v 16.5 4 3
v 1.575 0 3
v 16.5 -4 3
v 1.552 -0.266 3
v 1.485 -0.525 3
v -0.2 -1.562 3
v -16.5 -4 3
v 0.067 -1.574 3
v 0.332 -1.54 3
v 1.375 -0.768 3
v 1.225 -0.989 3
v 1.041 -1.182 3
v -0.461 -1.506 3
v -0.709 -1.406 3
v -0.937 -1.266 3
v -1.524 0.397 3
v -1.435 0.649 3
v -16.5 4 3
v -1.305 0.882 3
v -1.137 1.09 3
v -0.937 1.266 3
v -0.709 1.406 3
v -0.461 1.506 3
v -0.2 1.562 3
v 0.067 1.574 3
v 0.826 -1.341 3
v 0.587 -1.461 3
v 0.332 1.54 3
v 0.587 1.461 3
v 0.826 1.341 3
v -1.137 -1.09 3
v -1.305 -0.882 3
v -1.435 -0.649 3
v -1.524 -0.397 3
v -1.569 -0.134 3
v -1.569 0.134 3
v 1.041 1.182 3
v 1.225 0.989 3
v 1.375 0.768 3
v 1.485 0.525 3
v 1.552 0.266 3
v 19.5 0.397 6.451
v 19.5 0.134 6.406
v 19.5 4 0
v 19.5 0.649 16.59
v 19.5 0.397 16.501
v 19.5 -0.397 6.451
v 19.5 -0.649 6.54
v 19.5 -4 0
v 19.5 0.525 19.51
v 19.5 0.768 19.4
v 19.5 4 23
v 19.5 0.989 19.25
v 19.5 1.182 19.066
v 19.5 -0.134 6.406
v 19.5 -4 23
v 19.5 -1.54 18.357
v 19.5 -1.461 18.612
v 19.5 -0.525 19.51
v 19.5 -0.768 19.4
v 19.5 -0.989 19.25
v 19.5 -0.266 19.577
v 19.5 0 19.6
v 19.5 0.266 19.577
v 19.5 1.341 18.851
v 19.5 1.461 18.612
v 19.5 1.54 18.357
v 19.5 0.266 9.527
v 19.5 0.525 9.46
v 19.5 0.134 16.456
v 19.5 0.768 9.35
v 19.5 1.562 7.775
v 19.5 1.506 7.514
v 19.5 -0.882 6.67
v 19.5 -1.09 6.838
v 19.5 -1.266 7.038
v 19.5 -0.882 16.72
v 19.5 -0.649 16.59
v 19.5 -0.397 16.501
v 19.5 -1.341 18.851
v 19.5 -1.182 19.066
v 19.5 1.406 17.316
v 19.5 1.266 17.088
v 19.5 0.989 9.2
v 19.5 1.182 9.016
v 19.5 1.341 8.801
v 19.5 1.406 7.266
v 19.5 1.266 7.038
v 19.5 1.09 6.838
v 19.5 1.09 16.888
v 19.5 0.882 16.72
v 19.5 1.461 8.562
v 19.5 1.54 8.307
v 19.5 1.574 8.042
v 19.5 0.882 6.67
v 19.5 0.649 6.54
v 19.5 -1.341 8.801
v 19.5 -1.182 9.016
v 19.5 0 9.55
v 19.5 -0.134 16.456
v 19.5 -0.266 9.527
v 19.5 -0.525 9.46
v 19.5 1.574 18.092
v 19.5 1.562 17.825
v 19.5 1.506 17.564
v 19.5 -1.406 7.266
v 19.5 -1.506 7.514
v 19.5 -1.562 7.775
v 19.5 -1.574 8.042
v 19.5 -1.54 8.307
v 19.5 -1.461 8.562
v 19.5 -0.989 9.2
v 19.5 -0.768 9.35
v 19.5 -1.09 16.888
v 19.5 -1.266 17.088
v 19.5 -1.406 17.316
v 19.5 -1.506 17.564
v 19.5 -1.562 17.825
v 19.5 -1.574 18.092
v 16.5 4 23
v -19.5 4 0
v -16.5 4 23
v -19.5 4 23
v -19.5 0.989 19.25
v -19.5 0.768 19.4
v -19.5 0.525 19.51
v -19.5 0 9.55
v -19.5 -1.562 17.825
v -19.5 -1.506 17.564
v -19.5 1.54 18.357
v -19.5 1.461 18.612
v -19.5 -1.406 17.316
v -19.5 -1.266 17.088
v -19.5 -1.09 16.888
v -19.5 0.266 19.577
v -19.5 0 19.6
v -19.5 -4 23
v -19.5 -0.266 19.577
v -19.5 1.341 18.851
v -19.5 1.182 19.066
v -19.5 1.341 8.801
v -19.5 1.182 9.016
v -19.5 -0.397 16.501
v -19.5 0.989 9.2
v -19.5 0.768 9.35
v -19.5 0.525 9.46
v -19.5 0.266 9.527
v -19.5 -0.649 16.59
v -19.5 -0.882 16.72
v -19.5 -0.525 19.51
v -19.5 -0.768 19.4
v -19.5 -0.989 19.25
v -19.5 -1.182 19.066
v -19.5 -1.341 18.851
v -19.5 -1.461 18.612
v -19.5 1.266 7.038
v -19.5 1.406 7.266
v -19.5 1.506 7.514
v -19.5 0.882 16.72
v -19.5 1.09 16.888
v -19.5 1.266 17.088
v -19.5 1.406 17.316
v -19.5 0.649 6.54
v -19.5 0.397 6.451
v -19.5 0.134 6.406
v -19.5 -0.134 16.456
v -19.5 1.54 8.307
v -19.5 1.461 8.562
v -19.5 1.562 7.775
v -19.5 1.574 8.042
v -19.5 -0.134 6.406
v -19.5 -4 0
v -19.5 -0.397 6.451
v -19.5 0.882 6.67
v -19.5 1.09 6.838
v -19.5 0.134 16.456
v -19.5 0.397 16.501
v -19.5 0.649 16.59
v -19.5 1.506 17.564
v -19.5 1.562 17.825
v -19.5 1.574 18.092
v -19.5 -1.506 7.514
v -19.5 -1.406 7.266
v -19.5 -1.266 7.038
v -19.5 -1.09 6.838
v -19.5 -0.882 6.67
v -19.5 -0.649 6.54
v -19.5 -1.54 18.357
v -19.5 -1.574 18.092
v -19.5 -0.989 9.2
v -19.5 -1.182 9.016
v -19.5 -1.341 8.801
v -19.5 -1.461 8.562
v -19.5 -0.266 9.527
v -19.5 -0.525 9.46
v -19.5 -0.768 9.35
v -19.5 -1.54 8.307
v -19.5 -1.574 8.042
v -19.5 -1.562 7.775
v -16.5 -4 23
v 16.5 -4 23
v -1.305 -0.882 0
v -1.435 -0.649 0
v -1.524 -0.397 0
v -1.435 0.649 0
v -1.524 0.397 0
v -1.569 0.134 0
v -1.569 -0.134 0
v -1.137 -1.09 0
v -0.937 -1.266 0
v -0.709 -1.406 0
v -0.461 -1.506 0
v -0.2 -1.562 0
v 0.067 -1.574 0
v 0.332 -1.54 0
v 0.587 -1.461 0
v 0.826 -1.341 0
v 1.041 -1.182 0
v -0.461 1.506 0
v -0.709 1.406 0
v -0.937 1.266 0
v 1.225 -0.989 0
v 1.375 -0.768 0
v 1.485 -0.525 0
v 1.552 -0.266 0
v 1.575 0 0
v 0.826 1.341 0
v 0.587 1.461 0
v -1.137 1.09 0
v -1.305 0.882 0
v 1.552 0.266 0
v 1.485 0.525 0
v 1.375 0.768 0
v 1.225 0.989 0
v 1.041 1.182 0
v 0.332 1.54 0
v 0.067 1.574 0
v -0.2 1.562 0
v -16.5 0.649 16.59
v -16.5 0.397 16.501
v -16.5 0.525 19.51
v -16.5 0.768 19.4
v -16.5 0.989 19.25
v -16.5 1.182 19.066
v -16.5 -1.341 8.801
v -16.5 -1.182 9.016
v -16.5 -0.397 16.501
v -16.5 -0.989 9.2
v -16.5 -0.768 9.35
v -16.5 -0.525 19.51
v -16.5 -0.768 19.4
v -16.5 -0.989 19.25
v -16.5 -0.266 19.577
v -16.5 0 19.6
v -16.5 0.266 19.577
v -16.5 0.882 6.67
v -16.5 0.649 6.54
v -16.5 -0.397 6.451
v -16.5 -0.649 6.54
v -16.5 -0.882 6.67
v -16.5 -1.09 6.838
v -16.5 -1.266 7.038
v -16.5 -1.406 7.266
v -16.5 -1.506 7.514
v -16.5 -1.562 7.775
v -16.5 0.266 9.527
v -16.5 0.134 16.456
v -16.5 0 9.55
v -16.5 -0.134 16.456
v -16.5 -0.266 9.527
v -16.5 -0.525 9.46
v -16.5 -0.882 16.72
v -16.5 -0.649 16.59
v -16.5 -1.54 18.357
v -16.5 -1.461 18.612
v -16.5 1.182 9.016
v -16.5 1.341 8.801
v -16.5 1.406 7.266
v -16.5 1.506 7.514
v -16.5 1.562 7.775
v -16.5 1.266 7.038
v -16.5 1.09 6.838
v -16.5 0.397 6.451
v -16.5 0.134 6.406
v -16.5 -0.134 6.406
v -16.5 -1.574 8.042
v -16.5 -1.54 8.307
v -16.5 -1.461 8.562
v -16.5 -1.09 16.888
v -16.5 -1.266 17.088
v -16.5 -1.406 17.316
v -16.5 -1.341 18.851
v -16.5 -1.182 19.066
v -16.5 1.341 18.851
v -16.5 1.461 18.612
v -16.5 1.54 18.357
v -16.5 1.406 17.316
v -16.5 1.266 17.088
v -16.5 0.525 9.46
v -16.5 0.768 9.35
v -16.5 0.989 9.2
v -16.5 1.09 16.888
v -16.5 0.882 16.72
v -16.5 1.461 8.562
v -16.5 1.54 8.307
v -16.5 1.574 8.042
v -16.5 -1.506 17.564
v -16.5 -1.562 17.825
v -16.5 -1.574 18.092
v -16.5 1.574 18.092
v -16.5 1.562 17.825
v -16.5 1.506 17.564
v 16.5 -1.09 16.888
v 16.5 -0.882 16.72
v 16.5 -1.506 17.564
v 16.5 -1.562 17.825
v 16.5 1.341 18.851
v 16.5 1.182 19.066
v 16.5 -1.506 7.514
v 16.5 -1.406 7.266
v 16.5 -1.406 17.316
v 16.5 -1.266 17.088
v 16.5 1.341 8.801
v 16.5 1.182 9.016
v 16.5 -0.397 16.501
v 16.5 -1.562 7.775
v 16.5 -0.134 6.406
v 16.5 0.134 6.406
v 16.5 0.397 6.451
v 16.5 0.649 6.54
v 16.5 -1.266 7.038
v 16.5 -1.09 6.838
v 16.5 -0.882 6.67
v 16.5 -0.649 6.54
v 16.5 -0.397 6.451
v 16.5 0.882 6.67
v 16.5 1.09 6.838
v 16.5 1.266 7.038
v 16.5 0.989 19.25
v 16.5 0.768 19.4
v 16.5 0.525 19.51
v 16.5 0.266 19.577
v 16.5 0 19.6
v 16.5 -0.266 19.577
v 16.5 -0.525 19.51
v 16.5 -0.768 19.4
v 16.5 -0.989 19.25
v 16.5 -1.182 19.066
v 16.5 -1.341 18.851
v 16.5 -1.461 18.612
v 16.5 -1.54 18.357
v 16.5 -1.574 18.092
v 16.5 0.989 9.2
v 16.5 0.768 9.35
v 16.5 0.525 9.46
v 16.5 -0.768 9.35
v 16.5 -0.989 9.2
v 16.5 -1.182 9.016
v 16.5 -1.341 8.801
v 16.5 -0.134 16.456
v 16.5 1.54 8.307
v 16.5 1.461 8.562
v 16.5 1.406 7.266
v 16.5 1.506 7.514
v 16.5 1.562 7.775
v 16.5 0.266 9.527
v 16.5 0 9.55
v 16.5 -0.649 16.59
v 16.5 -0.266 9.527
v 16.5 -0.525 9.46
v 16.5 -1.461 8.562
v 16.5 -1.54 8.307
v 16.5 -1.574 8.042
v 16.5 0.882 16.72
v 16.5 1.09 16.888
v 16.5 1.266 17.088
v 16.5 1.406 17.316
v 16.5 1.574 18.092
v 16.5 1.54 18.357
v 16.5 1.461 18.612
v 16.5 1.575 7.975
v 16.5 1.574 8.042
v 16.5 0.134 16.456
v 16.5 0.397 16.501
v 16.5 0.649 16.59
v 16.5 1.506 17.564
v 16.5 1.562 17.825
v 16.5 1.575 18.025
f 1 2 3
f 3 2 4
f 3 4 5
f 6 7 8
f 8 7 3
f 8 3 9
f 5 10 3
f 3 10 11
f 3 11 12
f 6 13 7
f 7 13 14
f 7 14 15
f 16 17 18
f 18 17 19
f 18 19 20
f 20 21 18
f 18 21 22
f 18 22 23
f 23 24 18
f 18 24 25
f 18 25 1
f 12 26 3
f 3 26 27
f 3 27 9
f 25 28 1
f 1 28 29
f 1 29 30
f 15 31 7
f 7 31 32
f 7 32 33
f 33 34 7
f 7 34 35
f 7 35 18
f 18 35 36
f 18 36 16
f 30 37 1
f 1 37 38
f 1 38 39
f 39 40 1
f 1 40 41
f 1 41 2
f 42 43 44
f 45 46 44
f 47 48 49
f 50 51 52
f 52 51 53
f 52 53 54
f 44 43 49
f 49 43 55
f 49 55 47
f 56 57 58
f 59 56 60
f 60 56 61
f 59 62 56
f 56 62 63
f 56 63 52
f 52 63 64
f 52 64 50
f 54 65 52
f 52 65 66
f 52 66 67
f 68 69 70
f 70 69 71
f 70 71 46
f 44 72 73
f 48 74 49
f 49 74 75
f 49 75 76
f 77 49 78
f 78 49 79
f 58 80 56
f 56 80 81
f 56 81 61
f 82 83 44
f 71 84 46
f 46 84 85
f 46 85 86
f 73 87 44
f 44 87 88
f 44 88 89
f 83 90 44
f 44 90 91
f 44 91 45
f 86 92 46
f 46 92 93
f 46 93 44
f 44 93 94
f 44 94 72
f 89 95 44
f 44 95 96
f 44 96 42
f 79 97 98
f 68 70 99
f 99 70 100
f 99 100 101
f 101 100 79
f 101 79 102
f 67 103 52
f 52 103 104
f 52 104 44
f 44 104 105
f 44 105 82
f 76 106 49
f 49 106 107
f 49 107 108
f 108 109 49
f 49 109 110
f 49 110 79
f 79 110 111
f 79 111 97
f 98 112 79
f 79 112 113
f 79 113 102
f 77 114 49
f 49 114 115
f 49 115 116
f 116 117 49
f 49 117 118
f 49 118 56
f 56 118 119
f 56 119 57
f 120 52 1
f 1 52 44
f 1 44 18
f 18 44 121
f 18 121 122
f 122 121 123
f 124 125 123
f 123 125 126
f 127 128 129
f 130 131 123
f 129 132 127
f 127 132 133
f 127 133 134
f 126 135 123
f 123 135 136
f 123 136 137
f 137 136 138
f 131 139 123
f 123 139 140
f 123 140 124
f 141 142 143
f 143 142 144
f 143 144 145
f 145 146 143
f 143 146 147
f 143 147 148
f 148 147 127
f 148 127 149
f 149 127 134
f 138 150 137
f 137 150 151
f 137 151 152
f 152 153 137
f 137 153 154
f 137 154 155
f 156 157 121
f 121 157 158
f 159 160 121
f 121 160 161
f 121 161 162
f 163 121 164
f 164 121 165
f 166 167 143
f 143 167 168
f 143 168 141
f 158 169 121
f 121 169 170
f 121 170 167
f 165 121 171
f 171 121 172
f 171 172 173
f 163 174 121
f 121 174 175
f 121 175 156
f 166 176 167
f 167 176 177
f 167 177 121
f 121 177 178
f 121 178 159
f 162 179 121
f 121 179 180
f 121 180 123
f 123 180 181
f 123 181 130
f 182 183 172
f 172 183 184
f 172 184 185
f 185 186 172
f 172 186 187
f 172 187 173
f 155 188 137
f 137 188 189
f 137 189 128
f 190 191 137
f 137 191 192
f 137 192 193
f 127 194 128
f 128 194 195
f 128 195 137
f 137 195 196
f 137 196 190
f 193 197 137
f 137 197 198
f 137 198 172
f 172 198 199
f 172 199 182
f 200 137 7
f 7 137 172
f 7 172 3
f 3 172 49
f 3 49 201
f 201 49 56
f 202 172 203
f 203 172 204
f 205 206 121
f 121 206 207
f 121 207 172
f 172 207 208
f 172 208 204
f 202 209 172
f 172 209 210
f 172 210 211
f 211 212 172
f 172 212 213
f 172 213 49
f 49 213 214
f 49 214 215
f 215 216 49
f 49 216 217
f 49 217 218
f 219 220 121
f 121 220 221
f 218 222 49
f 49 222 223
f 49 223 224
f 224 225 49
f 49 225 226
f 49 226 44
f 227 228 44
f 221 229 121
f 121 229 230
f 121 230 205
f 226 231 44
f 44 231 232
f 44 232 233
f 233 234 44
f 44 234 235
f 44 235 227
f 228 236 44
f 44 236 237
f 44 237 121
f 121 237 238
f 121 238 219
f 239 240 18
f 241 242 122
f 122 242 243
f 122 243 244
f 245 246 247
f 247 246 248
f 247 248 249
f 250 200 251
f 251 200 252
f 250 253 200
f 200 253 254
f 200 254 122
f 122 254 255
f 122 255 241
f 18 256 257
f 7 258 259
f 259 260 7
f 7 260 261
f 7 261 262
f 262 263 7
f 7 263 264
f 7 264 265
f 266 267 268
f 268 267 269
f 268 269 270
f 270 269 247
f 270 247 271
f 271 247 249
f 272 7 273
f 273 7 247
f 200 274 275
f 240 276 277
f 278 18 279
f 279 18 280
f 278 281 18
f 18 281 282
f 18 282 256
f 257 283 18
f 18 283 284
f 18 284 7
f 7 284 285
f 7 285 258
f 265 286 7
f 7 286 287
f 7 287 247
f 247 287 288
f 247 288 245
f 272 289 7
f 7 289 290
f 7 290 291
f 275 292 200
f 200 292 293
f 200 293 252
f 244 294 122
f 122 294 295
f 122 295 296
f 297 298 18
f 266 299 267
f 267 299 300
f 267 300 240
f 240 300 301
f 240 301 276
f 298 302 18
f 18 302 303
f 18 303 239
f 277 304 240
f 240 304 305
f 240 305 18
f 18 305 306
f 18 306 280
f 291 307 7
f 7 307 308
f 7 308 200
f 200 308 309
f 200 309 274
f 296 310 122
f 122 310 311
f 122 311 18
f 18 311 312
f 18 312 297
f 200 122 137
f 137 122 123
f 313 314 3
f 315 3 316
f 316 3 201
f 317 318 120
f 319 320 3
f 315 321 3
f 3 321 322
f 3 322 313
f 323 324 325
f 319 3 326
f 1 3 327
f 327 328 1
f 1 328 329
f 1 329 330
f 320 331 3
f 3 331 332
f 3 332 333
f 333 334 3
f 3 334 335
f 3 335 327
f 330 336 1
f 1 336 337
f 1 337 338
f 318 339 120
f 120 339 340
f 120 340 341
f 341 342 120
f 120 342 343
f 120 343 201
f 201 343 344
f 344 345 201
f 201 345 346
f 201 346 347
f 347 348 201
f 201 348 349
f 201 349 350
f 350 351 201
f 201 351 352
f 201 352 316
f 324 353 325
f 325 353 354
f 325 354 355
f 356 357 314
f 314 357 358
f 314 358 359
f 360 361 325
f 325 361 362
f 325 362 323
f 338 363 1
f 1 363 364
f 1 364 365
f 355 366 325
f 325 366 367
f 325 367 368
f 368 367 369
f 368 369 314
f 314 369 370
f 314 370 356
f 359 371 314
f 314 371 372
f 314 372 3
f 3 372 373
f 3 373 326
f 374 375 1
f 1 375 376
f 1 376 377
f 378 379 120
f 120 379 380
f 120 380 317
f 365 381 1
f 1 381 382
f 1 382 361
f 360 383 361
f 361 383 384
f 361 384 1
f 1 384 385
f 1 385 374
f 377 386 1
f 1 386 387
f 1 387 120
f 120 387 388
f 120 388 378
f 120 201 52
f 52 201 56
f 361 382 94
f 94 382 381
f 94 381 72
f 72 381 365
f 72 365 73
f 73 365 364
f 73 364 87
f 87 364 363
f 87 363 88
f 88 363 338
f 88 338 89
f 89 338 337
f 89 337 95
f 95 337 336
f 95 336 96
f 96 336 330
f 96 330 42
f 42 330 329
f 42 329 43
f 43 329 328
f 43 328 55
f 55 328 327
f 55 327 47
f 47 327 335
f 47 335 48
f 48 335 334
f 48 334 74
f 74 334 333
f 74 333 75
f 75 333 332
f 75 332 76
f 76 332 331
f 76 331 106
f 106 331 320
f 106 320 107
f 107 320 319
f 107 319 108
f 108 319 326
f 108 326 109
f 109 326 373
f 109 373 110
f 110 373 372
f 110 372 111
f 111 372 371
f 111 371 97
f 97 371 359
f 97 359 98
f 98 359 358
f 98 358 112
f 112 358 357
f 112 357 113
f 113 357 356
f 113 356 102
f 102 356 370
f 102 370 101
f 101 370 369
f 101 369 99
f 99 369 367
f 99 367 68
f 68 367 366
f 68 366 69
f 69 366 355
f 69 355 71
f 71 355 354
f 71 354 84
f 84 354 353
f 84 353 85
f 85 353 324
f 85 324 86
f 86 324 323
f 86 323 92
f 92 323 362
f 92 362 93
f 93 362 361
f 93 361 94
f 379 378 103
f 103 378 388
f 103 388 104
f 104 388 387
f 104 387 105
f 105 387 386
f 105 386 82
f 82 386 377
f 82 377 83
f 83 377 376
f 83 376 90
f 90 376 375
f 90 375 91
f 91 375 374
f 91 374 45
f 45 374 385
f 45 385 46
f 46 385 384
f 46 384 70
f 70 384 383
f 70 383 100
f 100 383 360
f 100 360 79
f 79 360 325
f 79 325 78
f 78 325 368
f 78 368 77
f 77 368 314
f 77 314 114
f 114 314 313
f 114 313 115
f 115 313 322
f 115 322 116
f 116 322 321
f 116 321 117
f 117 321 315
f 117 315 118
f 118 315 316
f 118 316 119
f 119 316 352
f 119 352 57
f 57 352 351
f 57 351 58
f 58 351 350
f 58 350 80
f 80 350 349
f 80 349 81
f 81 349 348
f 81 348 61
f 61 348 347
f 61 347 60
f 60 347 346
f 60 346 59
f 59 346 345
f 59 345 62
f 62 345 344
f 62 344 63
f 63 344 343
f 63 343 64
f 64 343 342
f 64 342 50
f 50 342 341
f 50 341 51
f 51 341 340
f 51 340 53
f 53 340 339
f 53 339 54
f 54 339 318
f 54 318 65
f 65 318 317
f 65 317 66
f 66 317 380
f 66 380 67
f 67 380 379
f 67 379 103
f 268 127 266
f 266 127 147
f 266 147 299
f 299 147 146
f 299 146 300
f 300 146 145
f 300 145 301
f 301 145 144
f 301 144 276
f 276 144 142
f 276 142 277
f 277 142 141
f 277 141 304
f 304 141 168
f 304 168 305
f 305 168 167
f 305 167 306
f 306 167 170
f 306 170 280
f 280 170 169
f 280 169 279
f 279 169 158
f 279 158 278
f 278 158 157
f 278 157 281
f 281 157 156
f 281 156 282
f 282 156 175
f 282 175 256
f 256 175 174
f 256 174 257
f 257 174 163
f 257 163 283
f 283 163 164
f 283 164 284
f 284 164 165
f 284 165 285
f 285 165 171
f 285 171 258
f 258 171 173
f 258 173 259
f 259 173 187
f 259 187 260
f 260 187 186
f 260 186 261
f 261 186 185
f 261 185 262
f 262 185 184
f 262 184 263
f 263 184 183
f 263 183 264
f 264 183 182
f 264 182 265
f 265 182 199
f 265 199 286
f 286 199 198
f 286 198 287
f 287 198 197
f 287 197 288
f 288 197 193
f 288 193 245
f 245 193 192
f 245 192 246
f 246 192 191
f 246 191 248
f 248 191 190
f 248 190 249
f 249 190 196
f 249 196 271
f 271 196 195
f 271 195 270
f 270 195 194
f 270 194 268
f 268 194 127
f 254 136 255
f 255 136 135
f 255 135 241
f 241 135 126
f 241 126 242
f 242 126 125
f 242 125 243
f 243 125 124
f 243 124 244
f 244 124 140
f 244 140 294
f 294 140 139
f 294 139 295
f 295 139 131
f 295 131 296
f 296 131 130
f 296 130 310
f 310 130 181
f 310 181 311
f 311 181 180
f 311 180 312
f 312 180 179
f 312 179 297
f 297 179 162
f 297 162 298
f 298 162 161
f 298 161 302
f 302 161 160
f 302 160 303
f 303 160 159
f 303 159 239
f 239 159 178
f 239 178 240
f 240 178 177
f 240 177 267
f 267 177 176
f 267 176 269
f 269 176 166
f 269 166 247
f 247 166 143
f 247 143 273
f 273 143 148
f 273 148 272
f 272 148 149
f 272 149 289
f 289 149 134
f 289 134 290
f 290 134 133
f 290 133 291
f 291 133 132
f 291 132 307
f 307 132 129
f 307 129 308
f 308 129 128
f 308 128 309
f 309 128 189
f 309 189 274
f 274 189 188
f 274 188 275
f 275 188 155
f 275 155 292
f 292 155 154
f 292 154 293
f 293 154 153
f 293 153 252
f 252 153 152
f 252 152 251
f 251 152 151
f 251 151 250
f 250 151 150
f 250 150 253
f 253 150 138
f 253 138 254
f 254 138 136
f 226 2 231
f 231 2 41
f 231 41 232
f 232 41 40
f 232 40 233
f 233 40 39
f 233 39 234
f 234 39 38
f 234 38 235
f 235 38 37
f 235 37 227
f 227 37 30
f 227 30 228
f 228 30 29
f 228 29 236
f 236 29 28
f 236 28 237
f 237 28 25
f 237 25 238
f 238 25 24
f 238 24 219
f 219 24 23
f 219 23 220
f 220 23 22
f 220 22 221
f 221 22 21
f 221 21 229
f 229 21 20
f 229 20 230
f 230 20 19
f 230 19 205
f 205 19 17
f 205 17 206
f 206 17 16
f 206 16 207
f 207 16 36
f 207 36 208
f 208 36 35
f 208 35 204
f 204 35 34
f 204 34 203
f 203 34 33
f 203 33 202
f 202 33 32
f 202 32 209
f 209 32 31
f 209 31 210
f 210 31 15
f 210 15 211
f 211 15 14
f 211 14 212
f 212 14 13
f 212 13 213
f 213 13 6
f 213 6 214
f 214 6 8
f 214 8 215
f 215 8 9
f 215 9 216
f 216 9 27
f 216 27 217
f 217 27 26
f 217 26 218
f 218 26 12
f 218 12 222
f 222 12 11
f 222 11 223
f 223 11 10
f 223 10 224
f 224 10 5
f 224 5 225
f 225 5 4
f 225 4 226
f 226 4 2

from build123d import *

# Parameters (mm, degrees)
SKETCH1_W           = 39
SKETCH1_H           = 8
BOSS_EXTRUDE1_DEPTH = 3
SKETCH2_W           = 3
SKETCH2_H           = 8
BOSS_EXTRUDE2_DEPTH = 20
SKETCH3_R           = 1.575
CUT_EXTRUDE1_DEPTH  = 40
SKETCH4_R           = 1.575
CUT_EXTRUDE2_DEPTH  = 3


with BuildPart() as part:
    # Sketch1 → Boss-Extrude1 (new body)
    with BuildSketch(Plane.XY):
        Rectangle(SKETCH1_W, SKETCH1_H)
    extrude(amount=BOSS_EXTRUDE1_DEPTH)

    # Sketch2 → Boss-Extrude2 (add)
    with BuildSketch(Plane.XY.offset(3)):
        with Locations((-18, 0)):
            Rectangle(SKETCH2_W, SKETCH2_H)
        with Locations((18, 0)):
            Rectangle(SKETCH2_W, SKETCH2_H)
    extrude(amount=BOSS_EXTRUDE2_DEPTH)

    # Sketch3 → Cut-Extrude1 (cut, through all)
    with BuildSketch(Plane.ZY.offset(19.5)):
        with Locations((18.025, 0)):
            Circle(SKETCH3_R)
        with Locations((7.975, 0)):
            Circle(SKETCH3_R)
    extrude(amount=-CUT_EXTRUDE1_DEPTH, mode=Mode.SUBTRACT)

    # Sketch4 → Cut-Extrude2 (cut)
    with BuildSketch(Plane.XY.offset(3)):
        Circle(SKETCH4_R)
    extrude(amount=-CUT_EXTRUDE2_DEPTH, mode=Mode.SUBTRACT)


solid = part.part
